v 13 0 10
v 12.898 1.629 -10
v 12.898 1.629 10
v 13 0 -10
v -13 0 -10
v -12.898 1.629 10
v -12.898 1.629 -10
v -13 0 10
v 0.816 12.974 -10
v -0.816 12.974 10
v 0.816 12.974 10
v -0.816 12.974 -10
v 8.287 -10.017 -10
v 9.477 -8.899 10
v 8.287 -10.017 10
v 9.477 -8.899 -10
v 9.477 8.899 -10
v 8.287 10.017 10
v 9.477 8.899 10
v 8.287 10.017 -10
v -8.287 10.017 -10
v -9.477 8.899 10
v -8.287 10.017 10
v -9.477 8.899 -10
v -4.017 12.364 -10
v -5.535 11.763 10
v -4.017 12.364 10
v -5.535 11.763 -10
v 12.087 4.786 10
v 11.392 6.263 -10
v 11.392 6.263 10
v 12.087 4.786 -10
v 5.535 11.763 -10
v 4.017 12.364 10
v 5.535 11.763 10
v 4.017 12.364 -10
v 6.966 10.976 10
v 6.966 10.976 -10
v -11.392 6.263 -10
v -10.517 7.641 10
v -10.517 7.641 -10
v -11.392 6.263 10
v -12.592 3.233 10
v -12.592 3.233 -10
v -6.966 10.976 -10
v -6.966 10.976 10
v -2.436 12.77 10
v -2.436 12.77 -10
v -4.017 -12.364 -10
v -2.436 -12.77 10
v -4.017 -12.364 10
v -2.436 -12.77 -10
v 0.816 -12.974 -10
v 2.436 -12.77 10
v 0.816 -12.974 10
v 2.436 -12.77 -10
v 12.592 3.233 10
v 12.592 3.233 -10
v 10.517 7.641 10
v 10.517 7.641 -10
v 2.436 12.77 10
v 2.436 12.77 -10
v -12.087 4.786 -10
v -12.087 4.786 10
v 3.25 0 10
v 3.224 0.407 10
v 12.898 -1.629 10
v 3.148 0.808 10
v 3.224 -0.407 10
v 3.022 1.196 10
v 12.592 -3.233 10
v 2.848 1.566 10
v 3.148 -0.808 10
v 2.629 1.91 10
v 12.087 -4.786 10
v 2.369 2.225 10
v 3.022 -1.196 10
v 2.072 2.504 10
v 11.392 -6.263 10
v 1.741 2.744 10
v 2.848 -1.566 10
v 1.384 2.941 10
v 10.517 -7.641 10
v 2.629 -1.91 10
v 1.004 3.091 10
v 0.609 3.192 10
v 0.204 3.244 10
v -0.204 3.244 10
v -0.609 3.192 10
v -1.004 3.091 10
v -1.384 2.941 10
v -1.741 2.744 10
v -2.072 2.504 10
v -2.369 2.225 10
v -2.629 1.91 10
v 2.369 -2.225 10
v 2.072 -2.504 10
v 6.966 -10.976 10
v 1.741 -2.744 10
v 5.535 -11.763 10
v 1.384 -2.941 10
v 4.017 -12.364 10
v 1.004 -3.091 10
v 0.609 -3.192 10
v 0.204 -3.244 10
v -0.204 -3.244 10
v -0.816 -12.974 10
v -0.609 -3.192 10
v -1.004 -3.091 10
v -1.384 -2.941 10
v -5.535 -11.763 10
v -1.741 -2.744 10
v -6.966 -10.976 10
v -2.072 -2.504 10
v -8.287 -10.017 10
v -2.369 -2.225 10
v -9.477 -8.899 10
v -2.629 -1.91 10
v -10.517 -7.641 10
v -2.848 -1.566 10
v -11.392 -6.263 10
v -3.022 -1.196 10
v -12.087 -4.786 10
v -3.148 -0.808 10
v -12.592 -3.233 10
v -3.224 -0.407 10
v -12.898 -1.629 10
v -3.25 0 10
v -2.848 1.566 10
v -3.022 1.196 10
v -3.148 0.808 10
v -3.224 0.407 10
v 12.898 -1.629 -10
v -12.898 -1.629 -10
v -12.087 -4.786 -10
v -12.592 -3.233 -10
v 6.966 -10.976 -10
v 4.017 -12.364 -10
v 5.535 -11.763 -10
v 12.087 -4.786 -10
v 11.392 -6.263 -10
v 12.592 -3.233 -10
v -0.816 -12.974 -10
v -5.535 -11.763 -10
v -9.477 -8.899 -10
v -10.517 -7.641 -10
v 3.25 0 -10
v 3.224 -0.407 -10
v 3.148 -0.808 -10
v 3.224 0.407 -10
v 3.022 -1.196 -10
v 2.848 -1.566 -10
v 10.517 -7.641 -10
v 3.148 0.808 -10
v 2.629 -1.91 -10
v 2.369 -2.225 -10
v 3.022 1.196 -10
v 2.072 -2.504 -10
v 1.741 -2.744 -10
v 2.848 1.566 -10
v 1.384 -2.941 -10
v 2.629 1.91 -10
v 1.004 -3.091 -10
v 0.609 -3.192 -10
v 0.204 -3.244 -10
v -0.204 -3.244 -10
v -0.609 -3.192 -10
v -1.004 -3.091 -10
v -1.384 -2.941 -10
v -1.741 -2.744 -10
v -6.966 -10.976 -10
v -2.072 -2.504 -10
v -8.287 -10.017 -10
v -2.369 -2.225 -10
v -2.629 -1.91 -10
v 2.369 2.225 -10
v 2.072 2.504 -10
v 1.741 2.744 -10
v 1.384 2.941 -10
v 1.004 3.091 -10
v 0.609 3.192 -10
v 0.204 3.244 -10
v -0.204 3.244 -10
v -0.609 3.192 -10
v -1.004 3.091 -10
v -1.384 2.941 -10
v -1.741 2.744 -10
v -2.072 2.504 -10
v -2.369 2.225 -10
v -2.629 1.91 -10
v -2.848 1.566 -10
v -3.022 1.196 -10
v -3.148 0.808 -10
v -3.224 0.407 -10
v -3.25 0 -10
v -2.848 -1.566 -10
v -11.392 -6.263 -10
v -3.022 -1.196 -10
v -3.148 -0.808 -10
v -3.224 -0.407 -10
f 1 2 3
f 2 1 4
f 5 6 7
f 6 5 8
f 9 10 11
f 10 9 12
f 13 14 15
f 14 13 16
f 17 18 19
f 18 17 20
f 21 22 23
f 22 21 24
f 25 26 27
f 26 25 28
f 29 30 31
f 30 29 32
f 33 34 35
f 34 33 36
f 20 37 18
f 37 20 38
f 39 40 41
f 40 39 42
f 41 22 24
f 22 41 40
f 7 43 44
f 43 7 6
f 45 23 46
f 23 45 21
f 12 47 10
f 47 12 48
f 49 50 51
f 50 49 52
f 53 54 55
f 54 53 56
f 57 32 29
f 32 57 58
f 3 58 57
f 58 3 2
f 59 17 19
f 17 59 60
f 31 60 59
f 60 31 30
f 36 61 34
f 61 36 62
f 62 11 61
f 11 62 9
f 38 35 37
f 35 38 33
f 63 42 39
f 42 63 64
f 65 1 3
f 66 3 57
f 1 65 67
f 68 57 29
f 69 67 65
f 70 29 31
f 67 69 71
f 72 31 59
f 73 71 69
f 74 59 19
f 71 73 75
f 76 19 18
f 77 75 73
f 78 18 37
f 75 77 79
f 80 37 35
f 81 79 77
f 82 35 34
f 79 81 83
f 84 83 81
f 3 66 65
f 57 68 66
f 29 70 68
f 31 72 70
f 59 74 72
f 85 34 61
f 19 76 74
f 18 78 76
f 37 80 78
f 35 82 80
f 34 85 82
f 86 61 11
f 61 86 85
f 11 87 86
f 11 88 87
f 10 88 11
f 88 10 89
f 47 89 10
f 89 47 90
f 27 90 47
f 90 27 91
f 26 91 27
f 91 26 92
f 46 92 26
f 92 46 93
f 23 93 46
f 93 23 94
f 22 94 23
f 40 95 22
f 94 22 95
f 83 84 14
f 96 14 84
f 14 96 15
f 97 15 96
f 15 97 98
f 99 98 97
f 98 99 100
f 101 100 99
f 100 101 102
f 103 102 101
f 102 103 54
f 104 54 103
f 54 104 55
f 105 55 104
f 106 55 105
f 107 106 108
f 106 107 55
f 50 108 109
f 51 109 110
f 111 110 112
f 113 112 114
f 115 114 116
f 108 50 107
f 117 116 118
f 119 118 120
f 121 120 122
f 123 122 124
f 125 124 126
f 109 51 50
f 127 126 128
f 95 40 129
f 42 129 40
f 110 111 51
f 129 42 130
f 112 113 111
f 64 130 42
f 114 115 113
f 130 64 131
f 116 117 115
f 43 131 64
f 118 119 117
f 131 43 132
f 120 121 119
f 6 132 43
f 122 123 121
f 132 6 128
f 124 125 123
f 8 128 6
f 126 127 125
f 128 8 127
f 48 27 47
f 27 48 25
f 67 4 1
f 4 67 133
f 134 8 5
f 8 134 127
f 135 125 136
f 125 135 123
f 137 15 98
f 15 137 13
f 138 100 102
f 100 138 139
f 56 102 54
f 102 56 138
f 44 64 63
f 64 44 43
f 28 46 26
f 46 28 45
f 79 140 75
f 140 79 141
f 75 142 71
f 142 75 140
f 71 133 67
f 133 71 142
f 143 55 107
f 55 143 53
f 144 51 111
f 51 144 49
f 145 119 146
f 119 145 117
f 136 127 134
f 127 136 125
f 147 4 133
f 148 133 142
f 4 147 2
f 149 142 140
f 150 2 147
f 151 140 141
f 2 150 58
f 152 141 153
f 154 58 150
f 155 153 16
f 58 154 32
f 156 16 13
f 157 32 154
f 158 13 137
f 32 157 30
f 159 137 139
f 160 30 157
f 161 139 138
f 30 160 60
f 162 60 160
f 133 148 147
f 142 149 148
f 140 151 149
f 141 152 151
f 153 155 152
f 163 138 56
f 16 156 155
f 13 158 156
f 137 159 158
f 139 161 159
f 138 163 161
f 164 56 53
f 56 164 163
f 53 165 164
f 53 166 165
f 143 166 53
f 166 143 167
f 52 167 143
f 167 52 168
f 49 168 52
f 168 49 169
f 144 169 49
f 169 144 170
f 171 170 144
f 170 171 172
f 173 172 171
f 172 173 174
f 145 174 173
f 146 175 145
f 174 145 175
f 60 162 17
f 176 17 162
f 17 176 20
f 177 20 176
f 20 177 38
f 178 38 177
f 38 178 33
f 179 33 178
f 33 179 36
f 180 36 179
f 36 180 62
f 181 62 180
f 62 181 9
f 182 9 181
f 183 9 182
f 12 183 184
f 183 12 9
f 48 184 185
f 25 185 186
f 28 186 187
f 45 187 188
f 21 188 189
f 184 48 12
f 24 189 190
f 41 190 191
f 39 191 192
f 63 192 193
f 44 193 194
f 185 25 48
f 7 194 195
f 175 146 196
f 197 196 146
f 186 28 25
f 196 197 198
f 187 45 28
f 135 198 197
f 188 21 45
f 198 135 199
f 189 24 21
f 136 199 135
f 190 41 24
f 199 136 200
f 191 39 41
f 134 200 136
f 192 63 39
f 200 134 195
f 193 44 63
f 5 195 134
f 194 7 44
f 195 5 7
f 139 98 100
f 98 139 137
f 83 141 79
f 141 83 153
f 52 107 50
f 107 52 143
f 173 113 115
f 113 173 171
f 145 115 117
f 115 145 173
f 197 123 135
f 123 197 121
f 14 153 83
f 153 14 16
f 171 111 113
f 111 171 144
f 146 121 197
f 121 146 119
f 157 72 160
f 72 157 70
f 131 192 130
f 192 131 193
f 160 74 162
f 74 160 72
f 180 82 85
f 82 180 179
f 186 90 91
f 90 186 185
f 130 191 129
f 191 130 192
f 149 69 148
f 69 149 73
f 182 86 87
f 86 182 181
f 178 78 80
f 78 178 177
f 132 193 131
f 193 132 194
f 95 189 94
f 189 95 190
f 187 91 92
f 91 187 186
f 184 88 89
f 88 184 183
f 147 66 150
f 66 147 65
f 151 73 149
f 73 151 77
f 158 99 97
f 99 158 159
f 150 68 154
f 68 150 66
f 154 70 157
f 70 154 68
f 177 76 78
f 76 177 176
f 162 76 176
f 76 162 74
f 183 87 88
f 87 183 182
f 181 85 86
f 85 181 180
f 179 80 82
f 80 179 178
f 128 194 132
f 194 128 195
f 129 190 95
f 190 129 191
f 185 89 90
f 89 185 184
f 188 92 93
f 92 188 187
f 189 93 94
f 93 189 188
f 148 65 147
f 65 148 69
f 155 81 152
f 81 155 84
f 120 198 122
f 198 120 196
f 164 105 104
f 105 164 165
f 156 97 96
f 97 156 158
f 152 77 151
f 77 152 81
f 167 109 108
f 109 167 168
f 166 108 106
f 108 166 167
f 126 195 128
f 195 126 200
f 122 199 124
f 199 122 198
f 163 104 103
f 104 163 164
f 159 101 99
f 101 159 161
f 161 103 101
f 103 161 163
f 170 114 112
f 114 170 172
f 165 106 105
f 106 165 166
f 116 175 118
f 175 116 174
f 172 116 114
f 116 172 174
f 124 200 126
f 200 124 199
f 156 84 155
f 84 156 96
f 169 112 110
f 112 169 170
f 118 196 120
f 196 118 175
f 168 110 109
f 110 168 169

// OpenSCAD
$fn = 50;


difference() {
	union() {
		translate(v = [0, 0, -10.0000000000]) {
			cylinder(h = 20, r = 13.0000000000);
		}
	}
	union() {
		translate(v = [0, 0, -100.0000000000]) {
			cylinder(h = 200, r = 3.2500000000);
		}
	}
}
